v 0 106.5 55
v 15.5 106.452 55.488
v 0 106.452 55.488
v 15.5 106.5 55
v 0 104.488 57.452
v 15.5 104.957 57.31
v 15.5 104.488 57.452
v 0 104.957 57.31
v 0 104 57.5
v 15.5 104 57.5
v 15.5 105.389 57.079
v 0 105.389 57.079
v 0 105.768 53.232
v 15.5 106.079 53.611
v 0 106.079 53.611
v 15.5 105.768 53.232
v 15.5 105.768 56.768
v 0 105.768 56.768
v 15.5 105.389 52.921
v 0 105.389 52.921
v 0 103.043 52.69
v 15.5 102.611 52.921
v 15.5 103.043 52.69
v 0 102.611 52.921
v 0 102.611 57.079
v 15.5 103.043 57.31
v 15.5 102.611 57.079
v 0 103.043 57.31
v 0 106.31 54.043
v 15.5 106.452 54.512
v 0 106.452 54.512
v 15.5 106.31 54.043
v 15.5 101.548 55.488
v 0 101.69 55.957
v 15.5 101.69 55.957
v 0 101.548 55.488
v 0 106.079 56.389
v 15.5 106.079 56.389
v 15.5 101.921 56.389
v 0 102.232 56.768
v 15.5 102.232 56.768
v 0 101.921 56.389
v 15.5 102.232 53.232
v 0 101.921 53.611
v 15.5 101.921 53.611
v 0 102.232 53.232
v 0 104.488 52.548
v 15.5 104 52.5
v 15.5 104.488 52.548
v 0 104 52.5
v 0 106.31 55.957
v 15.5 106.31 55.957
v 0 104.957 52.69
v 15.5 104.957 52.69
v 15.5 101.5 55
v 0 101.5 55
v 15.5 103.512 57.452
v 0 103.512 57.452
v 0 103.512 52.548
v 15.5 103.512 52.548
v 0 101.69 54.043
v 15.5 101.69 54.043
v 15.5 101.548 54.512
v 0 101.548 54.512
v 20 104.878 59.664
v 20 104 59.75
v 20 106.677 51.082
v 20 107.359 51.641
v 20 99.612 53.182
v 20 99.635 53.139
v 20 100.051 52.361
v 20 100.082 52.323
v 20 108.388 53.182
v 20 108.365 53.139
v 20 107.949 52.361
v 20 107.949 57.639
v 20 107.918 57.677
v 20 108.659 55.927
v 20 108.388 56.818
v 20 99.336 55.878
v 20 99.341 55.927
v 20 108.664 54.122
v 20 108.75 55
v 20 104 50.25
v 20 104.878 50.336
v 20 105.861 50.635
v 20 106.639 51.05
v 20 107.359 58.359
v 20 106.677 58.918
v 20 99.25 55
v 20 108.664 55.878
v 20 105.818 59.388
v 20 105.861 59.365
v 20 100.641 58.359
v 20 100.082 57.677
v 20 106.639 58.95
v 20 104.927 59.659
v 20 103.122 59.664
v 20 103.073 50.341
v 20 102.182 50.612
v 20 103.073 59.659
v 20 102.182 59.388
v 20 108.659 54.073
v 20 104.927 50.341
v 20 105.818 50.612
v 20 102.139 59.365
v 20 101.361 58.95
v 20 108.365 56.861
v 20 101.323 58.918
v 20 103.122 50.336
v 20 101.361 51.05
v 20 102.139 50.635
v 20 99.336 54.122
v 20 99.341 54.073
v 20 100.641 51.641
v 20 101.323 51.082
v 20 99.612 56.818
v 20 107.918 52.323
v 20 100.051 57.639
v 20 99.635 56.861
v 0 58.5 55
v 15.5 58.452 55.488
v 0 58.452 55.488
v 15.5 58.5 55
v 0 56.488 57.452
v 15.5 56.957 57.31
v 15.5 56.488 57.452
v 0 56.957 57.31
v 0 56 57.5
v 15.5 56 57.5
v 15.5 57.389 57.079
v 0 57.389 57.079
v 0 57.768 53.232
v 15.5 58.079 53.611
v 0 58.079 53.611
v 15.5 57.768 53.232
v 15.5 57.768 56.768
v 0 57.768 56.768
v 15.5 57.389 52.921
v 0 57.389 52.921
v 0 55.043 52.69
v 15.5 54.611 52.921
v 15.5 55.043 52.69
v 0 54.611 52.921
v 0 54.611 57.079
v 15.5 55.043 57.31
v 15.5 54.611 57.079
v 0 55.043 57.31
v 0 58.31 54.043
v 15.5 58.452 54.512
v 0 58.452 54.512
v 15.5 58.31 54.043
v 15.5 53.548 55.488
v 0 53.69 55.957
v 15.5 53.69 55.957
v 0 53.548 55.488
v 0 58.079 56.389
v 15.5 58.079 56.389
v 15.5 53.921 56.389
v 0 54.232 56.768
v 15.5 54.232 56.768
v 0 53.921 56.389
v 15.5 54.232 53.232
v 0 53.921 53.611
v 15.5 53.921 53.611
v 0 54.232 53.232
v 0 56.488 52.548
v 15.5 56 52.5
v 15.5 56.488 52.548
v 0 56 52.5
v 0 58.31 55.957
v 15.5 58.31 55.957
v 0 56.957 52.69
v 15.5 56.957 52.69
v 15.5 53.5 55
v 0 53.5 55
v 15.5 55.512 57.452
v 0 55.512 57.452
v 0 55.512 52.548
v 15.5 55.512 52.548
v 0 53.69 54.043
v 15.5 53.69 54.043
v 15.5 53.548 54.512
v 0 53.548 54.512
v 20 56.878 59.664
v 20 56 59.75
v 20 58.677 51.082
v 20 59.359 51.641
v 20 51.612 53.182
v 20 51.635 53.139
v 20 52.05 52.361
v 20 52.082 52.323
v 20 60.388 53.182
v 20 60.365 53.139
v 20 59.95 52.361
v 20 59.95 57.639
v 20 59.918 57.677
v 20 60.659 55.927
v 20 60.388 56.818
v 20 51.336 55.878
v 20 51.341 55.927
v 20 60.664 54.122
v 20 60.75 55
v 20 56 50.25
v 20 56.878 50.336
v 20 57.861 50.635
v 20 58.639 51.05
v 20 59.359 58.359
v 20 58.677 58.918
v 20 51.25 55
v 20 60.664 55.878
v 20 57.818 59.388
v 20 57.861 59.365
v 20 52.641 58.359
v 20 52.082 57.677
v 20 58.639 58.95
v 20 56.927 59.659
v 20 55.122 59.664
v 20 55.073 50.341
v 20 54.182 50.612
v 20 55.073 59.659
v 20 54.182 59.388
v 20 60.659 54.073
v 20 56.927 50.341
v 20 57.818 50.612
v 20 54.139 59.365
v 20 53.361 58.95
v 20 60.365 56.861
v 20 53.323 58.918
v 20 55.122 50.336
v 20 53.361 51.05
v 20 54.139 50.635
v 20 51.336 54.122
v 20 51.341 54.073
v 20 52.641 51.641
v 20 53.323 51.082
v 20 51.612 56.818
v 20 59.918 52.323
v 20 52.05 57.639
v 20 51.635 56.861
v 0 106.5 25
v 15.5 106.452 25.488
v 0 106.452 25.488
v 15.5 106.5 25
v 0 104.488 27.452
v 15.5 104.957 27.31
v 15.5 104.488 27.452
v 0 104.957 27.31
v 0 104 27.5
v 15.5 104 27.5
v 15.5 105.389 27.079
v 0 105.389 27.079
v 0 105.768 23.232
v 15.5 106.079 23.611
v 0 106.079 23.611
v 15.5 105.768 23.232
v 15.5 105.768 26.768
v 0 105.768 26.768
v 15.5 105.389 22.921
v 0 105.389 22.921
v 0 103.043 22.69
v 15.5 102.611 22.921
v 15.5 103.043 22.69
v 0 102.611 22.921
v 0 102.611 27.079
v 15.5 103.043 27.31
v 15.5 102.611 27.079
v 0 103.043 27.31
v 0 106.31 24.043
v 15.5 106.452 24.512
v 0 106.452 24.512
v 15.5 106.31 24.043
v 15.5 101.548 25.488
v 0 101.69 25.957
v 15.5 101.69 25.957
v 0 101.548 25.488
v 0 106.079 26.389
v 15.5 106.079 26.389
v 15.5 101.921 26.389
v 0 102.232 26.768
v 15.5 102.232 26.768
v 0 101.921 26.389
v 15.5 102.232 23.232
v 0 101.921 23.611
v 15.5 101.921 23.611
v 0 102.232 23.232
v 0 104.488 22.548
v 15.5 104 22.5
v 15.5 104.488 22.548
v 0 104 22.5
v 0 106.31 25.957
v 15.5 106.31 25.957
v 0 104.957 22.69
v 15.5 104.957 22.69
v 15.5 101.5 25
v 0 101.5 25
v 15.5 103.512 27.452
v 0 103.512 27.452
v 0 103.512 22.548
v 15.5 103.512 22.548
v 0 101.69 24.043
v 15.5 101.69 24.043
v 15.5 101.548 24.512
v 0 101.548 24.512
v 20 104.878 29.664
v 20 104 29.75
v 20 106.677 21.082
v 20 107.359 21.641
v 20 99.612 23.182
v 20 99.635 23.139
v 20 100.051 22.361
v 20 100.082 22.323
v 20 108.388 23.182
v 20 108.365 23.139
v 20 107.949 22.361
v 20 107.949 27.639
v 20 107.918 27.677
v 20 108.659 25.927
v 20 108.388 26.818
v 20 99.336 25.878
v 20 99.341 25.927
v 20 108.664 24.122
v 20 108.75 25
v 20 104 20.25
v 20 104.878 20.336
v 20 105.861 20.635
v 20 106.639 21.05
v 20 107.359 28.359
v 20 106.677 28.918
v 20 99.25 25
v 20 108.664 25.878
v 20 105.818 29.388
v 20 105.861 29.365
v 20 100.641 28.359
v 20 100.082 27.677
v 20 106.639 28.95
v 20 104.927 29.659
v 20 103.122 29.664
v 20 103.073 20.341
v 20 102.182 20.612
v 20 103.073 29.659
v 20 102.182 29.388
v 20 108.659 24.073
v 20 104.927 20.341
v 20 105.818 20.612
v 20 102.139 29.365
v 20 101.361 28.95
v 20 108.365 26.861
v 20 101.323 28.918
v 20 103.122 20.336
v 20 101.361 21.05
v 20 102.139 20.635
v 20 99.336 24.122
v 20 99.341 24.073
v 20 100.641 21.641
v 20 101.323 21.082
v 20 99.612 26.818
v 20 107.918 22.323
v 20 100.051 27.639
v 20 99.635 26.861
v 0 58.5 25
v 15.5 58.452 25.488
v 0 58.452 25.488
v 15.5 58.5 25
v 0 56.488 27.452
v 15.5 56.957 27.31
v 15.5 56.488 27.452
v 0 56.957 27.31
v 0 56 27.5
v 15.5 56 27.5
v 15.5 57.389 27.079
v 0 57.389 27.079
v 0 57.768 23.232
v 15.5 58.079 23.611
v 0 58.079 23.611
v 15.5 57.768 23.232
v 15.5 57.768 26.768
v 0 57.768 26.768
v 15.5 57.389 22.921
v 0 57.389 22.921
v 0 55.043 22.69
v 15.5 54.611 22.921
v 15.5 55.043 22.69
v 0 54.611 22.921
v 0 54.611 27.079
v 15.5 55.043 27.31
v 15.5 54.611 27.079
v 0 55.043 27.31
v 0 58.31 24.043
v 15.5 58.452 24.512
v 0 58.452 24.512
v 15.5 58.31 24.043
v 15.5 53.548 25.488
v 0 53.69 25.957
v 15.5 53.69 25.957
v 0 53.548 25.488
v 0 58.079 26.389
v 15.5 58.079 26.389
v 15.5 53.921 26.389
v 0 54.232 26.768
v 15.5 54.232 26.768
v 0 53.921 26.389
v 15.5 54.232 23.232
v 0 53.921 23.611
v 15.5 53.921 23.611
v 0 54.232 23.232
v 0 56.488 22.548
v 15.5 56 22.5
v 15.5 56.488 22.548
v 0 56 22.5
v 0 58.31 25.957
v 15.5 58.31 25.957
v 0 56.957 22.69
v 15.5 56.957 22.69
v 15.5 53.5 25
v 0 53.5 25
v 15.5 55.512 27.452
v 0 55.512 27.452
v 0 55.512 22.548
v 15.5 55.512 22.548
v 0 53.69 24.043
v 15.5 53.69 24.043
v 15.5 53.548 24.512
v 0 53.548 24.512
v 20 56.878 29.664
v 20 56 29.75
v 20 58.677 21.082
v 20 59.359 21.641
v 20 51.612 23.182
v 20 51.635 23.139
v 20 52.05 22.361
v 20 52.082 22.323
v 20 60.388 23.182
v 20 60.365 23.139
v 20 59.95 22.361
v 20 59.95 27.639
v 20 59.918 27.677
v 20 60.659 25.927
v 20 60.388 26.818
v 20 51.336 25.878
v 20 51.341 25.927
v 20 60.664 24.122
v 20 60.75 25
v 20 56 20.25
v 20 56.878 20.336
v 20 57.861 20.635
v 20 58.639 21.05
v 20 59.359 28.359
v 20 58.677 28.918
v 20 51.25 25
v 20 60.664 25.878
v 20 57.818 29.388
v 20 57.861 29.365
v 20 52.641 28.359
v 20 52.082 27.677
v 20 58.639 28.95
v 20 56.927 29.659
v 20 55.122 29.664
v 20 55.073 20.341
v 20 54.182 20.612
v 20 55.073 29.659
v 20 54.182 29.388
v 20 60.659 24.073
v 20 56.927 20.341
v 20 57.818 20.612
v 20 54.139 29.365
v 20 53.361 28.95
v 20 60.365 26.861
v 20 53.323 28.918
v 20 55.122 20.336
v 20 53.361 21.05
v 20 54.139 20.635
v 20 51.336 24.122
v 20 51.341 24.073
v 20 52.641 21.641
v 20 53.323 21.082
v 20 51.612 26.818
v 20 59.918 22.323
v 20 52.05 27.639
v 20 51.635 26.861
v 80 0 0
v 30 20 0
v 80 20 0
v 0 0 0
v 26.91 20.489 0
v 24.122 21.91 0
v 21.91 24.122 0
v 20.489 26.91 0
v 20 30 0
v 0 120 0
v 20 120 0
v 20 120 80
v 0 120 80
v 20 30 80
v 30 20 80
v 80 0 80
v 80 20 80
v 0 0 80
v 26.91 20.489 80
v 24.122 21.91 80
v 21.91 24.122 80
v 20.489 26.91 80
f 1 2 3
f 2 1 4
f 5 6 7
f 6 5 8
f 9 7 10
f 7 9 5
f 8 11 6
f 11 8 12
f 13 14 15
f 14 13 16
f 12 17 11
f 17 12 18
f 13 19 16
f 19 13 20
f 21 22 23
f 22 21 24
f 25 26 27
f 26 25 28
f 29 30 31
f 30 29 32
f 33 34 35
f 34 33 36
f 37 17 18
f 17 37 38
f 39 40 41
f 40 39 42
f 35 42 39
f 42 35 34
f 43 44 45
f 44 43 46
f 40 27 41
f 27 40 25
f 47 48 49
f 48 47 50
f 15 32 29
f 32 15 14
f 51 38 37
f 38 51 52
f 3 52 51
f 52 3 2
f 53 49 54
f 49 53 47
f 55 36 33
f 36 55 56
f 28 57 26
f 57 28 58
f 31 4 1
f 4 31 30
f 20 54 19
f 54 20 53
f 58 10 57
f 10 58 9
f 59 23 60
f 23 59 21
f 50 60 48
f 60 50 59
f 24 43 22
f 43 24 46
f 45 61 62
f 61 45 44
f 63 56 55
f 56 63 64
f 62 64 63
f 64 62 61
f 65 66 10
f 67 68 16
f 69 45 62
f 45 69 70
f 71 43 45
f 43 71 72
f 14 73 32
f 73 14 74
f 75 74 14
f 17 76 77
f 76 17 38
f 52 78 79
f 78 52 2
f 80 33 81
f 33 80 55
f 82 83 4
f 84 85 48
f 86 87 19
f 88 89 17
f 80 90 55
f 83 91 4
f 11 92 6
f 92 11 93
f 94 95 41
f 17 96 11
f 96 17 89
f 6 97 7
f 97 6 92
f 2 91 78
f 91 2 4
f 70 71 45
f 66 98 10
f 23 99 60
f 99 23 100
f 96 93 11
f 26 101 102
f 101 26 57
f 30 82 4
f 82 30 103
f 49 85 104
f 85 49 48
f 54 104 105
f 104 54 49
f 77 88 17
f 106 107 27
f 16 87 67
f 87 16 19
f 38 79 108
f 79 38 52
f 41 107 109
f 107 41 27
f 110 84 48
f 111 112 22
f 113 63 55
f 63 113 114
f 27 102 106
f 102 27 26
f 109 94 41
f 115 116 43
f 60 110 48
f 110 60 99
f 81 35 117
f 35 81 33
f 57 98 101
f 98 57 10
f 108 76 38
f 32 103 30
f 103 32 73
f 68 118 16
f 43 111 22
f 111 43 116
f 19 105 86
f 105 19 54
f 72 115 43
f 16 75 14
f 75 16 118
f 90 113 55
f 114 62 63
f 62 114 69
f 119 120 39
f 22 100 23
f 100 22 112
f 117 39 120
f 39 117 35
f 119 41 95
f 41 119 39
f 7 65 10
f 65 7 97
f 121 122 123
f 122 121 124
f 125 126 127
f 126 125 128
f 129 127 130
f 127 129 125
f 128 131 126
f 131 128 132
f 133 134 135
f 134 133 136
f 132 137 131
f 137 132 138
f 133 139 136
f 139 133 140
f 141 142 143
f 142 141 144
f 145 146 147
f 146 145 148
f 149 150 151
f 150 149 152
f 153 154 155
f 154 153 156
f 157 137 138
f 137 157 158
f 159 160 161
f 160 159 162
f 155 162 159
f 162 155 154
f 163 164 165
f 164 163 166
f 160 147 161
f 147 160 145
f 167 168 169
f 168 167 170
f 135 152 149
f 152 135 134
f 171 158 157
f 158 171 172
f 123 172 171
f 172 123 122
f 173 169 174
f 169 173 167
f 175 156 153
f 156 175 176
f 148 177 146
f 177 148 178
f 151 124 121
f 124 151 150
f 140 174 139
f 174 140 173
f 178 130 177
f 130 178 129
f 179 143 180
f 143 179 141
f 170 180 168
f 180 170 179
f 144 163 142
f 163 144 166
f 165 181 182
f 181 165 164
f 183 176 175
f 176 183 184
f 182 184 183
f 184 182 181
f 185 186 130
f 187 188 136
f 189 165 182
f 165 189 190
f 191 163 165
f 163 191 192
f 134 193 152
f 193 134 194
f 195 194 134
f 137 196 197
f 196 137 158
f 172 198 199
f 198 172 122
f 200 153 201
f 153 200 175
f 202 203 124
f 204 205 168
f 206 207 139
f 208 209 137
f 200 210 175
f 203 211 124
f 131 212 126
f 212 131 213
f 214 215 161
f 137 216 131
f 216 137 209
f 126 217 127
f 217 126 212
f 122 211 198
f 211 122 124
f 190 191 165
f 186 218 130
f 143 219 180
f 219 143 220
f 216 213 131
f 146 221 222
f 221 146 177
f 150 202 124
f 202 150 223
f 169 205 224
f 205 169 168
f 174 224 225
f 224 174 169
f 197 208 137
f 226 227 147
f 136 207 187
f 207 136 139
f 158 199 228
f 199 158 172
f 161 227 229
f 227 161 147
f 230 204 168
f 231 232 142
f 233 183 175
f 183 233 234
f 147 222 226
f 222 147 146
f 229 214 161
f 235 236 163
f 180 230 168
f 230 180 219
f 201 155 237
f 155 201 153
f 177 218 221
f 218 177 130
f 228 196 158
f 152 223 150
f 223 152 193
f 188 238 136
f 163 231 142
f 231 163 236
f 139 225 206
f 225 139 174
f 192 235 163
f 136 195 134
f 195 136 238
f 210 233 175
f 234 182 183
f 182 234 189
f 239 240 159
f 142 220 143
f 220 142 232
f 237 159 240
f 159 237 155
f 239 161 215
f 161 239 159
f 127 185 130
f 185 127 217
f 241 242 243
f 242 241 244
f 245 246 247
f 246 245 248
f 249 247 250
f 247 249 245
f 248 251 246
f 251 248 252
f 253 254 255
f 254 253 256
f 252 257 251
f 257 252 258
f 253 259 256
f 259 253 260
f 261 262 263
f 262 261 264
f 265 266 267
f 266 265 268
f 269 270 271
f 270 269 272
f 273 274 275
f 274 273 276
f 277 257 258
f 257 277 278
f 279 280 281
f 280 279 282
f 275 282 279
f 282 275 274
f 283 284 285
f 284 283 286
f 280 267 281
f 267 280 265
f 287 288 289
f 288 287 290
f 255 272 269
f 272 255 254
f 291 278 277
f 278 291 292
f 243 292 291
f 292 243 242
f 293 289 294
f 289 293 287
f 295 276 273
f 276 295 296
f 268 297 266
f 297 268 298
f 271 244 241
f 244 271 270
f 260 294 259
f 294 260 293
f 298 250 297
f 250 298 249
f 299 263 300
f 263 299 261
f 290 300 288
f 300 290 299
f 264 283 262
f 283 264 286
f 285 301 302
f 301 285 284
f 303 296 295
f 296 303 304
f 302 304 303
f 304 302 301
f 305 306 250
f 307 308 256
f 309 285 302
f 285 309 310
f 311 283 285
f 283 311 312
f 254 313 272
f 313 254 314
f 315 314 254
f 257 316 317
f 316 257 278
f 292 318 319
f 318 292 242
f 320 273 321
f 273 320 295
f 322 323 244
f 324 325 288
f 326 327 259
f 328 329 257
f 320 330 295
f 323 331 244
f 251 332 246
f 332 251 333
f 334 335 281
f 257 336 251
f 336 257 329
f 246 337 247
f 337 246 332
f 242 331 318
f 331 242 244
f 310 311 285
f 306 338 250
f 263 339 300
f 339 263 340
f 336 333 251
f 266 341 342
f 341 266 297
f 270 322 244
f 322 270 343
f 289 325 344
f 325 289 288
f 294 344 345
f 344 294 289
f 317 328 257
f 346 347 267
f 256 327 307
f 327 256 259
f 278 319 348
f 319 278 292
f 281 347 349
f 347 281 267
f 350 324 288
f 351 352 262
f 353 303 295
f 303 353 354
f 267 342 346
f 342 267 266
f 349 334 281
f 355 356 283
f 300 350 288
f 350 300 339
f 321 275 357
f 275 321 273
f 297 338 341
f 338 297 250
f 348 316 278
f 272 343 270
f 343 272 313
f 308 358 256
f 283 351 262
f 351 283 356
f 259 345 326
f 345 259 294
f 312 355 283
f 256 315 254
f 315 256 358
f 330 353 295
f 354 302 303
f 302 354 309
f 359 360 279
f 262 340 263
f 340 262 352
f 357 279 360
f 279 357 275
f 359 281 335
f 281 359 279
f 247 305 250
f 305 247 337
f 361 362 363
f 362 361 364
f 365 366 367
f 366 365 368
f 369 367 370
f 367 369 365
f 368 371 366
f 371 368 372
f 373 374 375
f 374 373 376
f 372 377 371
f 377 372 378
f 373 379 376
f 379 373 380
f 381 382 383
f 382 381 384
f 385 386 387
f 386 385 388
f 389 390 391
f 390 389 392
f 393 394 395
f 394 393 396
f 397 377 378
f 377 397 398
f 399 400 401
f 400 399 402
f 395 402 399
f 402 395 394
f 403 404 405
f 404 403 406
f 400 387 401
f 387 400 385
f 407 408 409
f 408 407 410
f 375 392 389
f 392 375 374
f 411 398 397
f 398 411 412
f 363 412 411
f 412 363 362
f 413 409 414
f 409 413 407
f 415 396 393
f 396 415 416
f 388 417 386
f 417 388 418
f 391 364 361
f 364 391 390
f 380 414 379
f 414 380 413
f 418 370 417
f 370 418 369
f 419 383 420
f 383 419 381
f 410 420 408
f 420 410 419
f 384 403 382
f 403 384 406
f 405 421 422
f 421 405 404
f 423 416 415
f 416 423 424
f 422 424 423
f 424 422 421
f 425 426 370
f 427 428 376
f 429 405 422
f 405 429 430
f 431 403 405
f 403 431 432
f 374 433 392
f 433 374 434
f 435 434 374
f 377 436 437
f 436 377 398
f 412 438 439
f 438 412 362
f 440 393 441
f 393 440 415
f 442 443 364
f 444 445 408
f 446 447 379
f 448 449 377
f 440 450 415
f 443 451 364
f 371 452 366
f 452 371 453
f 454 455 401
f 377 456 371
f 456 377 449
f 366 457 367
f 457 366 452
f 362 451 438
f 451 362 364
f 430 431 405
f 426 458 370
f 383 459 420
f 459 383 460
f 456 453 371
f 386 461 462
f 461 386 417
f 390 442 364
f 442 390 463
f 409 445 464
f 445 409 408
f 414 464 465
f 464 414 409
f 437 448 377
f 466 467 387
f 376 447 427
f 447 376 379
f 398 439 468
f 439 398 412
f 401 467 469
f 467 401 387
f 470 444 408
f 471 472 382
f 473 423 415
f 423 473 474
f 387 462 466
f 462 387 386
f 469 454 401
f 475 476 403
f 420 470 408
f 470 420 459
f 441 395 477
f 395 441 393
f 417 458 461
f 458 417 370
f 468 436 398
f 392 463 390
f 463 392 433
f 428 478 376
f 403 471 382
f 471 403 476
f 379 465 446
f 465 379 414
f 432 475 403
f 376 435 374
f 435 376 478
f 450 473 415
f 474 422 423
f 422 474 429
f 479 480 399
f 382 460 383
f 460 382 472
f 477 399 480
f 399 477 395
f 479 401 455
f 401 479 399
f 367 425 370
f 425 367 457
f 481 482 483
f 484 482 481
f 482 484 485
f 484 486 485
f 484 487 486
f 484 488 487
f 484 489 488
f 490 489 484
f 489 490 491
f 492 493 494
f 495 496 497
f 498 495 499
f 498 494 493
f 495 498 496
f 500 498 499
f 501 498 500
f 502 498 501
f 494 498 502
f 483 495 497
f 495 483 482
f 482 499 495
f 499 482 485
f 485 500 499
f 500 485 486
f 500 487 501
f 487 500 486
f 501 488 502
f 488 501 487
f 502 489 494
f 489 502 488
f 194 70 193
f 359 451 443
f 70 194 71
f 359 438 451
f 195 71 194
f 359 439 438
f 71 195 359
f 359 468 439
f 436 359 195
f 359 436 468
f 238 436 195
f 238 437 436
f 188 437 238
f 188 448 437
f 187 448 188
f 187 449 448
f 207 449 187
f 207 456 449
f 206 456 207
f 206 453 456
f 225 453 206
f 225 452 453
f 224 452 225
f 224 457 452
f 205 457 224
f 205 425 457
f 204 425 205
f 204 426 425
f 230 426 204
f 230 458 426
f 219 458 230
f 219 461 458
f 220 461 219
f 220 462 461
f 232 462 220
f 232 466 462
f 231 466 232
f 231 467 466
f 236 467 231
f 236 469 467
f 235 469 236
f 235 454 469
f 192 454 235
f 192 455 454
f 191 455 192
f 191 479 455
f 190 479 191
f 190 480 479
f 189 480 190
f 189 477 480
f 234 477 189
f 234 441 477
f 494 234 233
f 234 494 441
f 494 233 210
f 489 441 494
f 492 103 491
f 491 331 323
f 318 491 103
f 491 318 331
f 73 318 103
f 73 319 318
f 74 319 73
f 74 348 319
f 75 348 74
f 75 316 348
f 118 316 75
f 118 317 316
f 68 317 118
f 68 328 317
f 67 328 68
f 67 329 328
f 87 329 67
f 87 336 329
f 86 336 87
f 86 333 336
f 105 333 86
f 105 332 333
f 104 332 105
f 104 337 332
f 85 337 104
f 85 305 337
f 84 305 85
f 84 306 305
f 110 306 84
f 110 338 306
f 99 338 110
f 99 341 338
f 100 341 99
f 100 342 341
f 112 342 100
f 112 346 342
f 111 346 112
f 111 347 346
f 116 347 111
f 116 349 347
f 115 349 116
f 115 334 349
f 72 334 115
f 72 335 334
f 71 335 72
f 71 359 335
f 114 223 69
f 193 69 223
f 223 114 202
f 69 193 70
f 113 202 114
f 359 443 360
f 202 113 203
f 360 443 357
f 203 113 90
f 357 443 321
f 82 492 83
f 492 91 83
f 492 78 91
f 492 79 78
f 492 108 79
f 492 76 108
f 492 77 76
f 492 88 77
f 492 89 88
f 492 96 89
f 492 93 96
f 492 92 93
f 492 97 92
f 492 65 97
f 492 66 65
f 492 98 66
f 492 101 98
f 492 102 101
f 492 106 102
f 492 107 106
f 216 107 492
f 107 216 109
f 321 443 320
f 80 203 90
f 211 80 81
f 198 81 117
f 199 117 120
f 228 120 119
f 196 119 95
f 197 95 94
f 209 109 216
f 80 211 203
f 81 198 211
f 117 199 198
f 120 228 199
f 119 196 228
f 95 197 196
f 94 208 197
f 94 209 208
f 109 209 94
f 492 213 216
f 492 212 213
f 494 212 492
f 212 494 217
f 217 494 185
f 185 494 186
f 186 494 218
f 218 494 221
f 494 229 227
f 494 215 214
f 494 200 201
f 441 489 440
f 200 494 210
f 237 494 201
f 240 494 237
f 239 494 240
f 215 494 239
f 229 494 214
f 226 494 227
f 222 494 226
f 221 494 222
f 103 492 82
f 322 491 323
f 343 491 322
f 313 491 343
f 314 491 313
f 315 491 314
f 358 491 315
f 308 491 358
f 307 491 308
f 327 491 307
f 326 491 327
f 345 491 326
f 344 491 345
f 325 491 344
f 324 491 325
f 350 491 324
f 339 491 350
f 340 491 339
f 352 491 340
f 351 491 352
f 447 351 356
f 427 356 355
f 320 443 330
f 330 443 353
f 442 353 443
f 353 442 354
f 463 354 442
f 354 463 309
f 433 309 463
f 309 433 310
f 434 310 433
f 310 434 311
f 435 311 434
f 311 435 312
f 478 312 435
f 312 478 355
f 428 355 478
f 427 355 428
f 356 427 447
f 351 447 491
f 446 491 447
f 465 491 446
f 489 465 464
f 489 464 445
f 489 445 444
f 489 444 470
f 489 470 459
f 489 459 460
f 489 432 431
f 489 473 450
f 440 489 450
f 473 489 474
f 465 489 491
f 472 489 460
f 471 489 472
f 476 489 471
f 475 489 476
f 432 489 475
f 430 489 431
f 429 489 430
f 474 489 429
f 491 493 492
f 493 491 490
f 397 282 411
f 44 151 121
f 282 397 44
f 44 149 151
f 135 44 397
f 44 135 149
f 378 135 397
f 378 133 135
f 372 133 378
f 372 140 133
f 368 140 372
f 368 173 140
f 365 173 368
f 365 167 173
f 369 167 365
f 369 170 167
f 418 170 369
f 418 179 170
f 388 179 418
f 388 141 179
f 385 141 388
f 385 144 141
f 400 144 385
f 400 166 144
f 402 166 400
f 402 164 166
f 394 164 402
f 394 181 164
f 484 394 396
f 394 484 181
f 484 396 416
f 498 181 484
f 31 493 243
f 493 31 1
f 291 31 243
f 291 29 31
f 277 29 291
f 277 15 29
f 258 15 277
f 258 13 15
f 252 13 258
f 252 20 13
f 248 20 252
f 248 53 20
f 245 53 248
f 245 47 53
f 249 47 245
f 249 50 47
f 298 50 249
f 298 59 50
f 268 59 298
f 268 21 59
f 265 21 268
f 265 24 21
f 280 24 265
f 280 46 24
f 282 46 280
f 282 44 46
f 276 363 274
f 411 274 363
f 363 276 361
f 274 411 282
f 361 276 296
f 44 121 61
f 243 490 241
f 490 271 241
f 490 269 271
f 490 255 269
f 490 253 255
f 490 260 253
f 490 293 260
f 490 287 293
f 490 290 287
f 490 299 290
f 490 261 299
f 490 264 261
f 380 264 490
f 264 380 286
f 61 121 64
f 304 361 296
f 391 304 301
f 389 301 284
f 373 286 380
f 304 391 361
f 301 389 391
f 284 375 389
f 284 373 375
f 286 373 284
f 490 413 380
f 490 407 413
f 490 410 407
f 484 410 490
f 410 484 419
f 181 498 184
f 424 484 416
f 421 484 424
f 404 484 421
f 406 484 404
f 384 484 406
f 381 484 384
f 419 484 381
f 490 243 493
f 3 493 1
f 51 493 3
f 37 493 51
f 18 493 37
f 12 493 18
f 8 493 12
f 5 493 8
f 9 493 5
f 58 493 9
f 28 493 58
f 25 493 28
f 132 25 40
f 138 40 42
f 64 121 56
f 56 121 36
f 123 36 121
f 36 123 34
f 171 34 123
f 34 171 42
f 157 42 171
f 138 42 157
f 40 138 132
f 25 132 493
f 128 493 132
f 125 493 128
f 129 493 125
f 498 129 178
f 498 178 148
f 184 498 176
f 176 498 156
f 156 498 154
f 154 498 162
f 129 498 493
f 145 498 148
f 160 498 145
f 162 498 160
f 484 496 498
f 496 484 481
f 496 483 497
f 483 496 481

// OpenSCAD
use <Round-Anything/polyround.scad>

HANGER_THICKNESS = 20;
HANGER_DEPTH = 80;
HANGER_WIDTH = 160;
HANGER_WALL_MOUNT_HEIGHT = 120;
HANGER_PLATFORM_LENGTH = 80;
HANGER_INNER_CORNER_RADIUS = 10;

SCREW_HOLE_DIAMETER = 5;
SCREW_HOLE_DEPTH = HANGER_THICKNESS + 1; 
SCREW_HEAD_RECESS_DIAMETER = 10;
SCREW_HEAD_RECESS_DEPTH = 5;

SCREW_HOLE_TOP_BOTTOM_EDGE_MARGIN = 16;
SCREW_HOLE_LEFT_RIGHT_EDGE_MARGIN = 25;

// L shaped profile
function hangerProfile() = [
    [0, 0, 0],
    [0, HANGER_WALL_MOUNT_HEIGHT, 0],
    [HANGER_THICKNESS, HANGER_WALL_MOUNT_HEIGHT, 0],
    [HANGER_THICKNESS, HANGER_THICKNESS, HANGER_INNER_CORNER_RADIUS],
    [HANGER_PLATFORM_LENGTH, HANGER_THICKNESS, 0],
    [HANGER_PLATFORM_LENGTH, 0, 0]
];

module hangerBody() {
    linear_extrude(HANGER_DEPTH) polygon(polyRound(hangerProfile()));
}

module screwHoleShape() {
    union() {
        cylinder(h = SCREW_HOLE_DEPTH, d = SCREW_HOLE_DIAMETER, center = true, $fn = 32);
        translate([0, 0, -SCREW_HOLE_DEPTH/2 + SCREW_HEAD_RECESS_DEPTH/2])
            cylinder(h = SCREW_HEAD_RECESS_DEPTH, r1 = SCREW_HEAD_RECESS_DIAMETER/2, r2 = SCREW_HOLE_DIAMETER/2, center = true, $fn = 32);
    }
}

difference() {
    hangerBody();
    translate([HANGER_THICKNESS/2, HANGER_WALL_MOUNT_HEIGHT - SCREW_HOLE_TOP_BOTTOM_EDGE_MARGIN, HANGER_DEPTH - SCREW_HOLE_LEFT_RIGHT_EDGE_MARGIN])
        rotate([0, 270, 0]) 
            screwHoleShape();
    translate([HANGER_THICKNESS/2, HANGER_WALL_MOUNT_HEIGHT - SCREW_HOLE_TOP_BOTTOM_EDGE_MARGIN*4, HANGER_DEPTH - SCREW_HOLE_LEFT_RIGHT_EDGE_MARGIN])
        rotate([0, 270, 0]) 
            screwHoleShape();
    translate([HANGER_THICKNESS/2, HANGER_WALL_MOUNT_HEIGHT - SCREW_HOLE_TOP_BOTTOM_EDGE_MARGIN, SCREW_HOLE_LEFT_RIGHT_EDGE_MARGIN])
        rotate([0, 270, 0]) 
            screwHoleShape();
    translate([HANGER_THICKNESS/2, HANGER_WALL_MOUNT_HEIGHT - SCREW_HOLE_TOP_BOTTOM_EDGE_MARGIN*4, SCREW_HOLE_LEFT_RIGHT_EDGE_MARGIN])
        rotate([0, 270, 0]) 
            screwHoleShape();
}
